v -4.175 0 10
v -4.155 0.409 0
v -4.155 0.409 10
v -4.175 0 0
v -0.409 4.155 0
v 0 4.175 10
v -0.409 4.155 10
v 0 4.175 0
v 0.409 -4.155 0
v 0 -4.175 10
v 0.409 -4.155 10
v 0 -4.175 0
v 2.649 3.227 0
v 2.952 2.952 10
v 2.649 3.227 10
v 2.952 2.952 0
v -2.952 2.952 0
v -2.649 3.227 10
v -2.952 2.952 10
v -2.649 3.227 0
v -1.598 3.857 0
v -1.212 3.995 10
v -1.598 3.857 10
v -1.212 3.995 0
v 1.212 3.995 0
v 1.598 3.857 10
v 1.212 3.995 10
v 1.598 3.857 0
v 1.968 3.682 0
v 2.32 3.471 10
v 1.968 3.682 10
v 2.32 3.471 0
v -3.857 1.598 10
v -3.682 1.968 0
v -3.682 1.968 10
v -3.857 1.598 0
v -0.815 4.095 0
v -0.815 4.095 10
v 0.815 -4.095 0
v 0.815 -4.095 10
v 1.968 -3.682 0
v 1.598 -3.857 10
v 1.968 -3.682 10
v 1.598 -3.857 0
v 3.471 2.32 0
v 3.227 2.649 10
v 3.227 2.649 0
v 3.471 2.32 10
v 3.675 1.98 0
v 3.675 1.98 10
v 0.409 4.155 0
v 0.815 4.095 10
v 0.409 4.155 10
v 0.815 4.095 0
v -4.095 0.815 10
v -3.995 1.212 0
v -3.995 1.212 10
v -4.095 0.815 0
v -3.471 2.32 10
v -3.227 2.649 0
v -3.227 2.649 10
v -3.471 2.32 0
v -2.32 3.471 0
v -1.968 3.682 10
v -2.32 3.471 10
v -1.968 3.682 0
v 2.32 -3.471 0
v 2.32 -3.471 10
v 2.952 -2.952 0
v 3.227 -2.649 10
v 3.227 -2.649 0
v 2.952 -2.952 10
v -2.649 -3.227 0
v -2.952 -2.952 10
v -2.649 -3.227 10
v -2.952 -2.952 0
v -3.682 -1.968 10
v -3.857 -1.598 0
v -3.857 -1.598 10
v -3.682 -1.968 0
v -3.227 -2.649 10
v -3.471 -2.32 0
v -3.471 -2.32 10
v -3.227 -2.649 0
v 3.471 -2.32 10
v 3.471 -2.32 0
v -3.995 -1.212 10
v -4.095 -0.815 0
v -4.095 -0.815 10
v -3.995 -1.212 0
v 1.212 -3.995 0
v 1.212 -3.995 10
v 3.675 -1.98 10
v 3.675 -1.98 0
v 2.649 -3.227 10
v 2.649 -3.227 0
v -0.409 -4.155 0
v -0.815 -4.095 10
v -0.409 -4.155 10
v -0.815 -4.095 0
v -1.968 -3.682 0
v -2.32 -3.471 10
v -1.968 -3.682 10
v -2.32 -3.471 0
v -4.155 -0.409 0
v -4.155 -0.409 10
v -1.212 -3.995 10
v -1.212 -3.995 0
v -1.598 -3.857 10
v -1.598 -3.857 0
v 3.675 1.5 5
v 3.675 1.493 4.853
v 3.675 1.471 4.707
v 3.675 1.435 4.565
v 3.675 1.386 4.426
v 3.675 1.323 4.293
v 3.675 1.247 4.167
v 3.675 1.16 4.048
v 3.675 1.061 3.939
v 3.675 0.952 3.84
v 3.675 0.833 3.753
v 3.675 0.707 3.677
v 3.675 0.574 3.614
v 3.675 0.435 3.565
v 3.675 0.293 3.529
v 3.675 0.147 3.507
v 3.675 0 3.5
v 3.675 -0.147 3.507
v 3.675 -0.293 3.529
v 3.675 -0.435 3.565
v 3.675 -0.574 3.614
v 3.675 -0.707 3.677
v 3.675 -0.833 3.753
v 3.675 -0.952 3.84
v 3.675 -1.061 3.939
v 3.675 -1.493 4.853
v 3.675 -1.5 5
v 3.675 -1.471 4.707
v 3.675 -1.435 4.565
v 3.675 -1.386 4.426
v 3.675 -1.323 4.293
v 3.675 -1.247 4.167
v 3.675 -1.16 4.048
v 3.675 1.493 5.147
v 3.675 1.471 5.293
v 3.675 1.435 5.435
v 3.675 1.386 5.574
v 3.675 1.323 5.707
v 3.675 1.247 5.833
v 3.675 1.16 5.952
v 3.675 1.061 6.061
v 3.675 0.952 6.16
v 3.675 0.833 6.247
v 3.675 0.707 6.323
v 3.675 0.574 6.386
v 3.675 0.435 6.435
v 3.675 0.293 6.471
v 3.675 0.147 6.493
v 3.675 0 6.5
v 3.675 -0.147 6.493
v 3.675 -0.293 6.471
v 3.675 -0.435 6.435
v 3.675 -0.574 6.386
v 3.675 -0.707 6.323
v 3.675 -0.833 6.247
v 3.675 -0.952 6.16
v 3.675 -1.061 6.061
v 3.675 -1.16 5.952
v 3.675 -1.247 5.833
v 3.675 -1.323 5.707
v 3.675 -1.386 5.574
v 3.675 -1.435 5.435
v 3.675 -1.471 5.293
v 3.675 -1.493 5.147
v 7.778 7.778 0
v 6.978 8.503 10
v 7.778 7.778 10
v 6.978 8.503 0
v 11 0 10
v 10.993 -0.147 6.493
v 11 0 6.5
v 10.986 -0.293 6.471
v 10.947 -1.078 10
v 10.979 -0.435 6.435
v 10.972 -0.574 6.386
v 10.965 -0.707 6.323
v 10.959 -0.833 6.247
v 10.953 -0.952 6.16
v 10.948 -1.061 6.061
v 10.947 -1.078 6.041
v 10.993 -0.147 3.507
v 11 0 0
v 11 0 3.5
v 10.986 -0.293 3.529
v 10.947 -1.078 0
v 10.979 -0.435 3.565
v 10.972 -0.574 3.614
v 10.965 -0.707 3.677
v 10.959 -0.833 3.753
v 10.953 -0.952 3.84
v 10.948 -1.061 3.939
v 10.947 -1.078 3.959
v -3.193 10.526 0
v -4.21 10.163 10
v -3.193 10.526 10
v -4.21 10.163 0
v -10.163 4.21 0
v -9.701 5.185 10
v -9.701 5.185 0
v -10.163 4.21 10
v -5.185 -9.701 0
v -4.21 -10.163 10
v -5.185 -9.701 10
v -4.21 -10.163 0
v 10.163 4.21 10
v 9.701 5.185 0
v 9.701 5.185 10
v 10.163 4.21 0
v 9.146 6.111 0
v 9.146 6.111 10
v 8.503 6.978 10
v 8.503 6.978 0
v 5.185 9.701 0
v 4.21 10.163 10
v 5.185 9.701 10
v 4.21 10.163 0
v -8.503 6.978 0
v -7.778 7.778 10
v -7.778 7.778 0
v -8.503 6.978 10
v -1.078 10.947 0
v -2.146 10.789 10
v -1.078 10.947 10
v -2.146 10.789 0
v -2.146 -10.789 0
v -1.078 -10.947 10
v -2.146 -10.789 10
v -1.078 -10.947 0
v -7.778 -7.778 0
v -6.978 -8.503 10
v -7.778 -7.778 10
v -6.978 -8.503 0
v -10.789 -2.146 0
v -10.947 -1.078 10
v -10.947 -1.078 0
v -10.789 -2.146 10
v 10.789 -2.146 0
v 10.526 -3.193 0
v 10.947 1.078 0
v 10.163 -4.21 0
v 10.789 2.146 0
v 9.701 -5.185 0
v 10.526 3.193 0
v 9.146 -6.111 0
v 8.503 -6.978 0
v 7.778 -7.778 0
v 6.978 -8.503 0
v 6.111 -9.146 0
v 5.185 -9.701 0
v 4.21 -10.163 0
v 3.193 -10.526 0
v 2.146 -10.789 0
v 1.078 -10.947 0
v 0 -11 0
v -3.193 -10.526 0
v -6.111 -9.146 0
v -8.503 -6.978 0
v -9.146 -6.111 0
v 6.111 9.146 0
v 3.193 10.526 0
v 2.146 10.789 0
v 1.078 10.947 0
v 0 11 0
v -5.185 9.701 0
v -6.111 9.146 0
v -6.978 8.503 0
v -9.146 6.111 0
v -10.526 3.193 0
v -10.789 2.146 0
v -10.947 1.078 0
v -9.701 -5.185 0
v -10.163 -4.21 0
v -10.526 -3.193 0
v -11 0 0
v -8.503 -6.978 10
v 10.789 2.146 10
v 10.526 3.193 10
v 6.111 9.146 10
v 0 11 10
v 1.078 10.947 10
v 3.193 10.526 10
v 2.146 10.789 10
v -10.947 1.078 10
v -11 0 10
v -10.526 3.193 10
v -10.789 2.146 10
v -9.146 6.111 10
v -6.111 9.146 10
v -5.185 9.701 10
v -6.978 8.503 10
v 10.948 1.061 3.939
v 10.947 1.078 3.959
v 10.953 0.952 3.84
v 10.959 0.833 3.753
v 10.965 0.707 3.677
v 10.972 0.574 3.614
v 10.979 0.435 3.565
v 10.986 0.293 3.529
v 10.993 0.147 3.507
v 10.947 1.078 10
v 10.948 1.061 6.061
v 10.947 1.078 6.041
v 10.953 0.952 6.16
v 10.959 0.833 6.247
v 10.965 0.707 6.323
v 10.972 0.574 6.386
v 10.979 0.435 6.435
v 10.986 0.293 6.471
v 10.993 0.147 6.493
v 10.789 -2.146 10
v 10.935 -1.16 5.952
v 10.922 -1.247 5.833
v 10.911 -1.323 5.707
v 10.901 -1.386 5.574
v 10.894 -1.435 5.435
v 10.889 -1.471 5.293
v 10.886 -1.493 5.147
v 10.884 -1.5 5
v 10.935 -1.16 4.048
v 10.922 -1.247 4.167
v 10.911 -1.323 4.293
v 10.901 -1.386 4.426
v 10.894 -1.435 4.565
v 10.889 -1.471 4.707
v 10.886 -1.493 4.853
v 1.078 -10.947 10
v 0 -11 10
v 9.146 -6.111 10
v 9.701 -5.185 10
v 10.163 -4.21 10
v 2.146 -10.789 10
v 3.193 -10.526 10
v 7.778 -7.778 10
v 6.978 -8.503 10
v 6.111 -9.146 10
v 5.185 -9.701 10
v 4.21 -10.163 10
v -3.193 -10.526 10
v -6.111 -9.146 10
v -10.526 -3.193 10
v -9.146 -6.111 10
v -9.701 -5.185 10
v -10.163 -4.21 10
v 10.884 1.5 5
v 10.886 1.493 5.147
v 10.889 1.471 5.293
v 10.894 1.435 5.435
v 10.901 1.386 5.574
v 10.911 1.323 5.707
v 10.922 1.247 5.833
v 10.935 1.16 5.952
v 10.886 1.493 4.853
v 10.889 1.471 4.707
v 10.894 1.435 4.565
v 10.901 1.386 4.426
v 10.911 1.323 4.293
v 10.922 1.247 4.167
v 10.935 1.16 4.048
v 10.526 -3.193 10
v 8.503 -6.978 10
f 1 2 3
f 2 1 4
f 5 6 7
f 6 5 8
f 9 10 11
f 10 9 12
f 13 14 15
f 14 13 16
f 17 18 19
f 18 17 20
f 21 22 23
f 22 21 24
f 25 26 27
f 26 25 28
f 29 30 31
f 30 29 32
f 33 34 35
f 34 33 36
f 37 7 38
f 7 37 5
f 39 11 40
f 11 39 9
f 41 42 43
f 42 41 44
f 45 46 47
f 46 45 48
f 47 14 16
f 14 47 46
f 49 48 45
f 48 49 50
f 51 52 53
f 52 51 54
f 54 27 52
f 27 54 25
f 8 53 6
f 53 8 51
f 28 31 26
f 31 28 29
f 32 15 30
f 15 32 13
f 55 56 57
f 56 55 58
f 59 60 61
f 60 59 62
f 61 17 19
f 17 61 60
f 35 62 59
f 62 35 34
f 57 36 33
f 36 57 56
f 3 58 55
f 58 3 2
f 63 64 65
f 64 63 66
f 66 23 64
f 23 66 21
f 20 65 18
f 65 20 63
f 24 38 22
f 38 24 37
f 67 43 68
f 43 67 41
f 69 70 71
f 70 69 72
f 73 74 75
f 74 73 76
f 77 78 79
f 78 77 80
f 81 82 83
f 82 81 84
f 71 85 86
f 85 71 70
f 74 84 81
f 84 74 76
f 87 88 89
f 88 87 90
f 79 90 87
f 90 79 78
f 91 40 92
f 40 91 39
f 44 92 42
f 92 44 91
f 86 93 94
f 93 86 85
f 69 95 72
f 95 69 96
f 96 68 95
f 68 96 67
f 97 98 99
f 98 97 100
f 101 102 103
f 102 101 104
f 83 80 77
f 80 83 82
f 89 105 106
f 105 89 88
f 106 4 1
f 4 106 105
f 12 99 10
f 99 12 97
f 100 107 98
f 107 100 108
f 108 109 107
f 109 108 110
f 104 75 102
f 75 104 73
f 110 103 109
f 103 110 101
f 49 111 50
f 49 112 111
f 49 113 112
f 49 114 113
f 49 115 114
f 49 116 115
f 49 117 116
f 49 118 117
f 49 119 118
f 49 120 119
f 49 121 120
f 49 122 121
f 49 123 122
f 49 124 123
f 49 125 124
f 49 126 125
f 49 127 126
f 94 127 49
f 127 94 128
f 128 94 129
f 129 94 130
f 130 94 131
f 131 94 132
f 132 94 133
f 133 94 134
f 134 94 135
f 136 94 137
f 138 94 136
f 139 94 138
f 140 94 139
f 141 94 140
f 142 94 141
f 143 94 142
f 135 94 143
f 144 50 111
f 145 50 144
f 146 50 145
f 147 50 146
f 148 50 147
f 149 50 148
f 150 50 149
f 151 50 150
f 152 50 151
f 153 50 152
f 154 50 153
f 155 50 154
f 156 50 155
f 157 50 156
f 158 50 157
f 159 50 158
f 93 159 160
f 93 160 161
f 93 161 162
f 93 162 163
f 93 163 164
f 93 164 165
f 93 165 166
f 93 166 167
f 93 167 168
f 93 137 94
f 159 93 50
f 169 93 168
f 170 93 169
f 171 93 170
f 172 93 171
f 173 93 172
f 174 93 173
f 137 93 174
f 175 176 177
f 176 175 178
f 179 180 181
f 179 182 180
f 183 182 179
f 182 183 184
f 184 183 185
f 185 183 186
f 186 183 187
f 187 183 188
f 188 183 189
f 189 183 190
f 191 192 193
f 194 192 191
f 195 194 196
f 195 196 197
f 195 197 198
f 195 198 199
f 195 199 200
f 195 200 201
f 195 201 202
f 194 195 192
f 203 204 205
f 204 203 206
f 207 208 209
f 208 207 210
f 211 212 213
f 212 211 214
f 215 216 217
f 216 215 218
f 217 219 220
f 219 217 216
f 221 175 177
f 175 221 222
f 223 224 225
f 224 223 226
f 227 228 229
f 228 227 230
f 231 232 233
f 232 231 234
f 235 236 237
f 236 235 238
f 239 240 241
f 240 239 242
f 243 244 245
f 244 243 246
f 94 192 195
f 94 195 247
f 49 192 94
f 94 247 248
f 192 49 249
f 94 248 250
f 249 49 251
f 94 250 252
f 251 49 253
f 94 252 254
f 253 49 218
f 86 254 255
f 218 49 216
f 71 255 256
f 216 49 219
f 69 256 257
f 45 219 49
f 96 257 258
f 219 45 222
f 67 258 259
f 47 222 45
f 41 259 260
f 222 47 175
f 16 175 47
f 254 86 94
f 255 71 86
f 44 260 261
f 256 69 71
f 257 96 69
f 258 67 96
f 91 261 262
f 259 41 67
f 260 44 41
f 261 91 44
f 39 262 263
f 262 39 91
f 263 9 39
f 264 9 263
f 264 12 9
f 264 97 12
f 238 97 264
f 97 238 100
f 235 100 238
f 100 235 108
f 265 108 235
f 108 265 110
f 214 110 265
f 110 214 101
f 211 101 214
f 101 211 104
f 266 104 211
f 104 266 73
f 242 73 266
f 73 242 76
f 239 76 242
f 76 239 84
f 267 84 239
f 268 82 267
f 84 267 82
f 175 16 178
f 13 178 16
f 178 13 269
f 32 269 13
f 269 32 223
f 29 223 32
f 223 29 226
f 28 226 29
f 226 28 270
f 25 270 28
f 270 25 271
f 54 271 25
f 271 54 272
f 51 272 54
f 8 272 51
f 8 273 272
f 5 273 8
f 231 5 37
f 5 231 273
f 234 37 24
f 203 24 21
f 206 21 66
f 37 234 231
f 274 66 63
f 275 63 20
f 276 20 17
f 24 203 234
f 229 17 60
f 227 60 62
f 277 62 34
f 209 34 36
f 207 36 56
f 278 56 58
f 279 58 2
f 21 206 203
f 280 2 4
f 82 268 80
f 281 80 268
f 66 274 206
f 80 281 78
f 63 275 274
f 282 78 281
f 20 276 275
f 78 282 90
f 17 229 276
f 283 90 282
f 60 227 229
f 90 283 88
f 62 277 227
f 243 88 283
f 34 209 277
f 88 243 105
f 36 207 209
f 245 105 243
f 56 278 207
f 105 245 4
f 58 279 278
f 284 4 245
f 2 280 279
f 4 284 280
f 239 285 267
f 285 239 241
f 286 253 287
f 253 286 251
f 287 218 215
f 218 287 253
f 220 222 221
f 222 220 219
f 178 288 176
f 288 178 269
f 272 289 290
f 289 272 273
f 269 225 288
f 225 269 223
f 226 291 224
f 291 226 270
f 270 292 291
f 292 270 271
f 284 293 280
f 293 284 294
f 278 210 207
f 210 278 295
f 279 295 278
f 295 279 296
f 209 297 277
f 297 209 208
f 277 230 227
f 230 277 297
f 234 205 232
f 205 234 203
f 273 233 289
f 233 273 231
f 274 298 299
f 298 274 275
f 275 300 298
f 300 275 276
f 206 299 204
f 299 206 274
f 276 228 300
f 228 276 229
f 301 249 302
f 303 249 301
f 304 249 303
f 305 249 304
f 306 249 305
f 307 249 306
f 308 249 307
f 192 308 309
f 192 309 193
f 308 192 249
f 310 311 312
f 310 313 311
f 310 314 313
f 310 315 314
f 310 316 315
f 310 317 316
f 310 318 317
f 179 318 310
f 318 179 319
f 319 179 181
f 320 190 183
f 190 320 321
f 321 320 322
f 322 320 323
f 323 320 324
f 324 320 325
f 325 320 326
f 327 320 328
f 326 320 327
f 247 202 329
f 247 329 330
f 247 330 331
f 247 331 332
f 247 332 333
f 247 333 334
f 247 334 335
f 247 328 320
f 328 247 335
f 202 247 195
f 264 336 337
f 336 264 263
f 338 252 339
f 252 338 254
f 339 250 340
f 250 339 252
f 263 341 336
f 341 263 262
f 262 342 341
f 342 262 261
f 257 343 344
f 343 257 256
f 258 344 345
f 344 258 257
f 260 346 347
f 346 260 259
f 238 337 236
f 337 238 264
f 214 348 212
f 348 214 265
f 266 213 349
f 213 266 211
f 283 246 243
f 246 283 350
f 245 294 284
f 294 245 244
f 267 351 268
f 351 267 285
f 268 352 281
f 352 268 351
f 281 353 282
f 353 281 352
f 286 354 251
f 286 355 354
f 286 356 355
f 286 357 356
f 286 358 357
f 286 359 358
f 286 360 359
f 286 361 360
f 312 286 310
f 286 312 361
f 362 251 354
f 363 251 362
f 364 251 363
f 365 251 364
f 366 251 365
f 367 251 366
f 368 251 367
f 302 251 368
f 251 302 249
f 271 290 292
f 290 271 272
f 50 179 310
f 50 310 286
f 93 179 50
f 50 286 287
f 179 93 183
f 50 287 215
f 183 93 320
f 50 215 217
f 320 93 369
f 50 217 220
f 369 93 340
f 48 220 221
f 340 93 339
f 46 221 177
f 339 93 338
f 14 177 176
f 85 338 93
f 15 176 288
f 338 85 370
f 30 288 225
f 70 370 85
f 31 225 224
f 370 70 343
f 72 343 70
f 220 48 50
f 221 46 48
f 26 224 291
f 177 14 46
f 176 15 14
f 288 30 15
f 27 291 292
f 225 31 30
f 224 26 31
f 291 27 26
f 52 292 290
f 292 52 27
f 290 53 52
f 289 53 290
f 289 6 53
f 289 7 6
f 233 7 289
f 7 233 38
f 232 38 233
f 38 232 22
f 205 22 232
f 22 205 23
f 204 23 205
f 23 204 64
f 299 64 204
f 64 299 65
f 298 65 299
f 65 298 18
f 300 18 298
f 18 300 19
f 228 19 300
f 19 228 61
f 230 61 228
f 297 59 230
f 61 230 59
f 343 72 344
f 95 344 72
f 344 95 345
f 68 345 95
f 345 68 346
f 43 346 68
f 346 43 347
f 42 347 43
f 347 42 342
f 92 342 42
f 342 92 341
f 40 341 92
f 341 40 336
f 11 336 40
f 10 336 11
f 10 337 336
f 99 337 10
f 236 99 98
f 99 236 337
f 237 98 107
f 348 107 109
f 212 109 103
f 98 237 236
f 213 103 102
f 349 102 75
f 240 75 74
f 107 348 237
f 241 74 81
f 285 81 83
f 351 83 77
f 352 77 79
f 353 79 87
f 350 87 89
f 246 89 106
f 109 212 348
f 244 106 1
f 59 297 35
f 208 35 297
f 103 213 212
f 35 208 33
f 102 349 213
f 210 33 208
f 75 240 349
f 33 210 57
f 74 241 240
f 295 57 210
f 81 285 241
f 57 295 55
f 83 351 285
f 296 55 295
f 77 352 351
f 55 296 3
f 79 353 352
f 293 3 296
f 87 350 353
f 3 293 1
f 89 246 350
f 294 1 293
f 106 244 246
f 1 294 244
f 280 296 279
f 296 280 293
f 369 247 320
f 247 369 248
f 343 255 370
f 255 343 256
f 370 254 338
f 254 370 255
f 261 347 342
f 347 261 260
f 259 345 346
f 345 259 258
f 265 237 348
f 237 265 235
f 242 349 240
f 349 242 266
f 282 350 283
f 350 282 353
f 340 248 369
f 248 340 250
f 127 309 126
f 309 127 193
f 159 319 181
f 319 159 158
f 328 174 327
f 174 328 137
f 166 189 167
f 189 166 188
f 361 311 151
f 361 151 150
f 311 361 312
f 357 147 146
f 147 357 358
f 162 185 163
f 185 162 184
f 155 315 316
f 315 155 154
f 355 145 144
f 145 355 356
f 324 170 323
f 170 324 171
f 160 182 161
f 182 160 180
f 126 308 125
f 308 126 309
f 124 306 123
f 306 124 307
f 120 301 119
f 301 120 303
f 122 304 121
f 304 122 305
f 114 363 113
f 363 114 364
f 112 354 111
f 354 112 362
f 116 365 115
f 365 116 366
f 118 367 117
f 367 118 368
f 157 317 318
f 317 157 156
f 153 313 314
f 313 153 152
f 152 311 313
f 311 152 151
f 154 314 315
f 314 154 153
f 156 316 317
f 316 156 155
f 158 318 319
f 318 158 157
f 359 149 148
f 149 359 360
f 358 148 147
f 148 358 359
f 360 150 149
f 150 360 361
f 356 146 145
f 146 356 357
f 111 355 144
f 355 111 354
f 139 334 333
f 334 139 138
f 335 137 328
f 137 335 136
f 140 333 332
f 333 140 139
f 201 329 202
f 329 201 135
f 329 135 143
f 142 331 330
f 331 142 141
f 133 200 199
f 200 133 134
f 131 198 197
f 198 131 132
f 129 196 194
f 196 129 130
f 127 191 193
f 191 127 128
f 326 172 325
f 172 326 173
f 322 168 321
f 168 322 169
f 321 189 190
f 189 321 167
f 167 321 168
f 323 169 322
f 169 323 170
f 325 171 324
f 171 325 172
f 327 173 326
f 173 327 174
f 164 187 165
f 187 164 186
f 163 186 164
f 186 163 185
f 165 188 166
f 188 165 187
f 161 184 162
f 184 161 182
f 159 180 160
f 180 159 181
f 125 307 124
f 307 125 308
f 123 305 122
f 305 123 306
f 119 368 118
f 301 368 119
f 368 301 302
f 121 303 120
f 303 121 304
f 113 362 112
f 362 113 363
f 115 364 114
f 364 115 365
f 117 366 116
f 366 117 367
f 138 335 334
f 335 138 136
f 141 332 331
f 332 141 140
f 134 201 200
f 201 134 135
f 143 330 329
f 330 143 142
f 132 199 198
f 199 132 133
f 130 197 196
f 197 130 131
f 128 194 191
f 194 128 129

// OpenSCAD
// file: parameters.scad
// =============================================================================
// Gen-CB — nightly 2026-10-13 (physics_scorer, honest magpylib watts)
// Wire-saver stator for the Gen-CA rotors: only 4.05 mm of copper (9 layers), so the magnet faces are 6.65 mm apart and peak Bz at the copper reaches ≈0.70 T. It needs ≈300 m of wire (≈80 m less than Gen-CA, ≈75 m less than Gen-BX) and still out-scores the Gen-BX champion; it shares every rotor part, the steel, the frame rods and the bearing bridges with Gen-CA, so the two stators swap on the same machine.
// Clocking 0 deg (magnets N facing S) + D-flat keyed bore + index notch + flip-symmetric hole map.
// Windable 2-piece bobbin; turns = physics_scorer turns_fit; copper only between flanges.
// Steel back-iron: 2× Ø194 × 4.76 mm (3/16") mild-steel discs (steel_backiron_disc.dxf); magnets sit ON the steel
// (through-pockets) -> score with --back-iron. Night 2026-10-13.
// =============================================================================
topology            = "dual_rotor";

// --- Wire / winding (physics_scorer winding-fit) -------------------------------
wire_awg            = 26;
wire_od             = 0.45;     // insulated OD mm (bare 0.405)
fill_realistic      = 0.65;     // insulated-wire area / window (DENSE layered wind with a jig; scorer cap 0.65)
turns               = 292;       // = physics_scorer turns_fit (do NOT raise)
coil_former_type    = "bobbin";
coil_core_inset     = 17.70;     // radial copper build: hub = copper boundary inset by this
wind_build_axial    = 0.0;      // nothing proud of the flanges
wind_build_radial   = 0.0;

// --- Bobbin (base + lid) ---------------------------------------------------------
coil_id_r           = 63.00;    // copper boundary sector
coil_od_r           = 102.00;
span_deg            = 26.82;    // = pitch - 2*asin((wall+0.85)/coil_id_r) -> >=1.2 mm stator web
former_web          = 4.05;     // copper height between flanges (TALL copper: steel keeps Bz up)
flange_t            = 0.80;     // >= 0.8 mm FDM wall rule (tall winds push on the flanges)
wall                = 0.80;     // flange lip beyond copper
former_bare_h       = former_web + 2 * flange_t;
coil_envelope_h     = former_bare_h + 2 * wind_build_axial;
tab_w               = 7.0;
tab_len             = 7.0;
tab_h               = former_bare_h / 2;
pin_d               = 1.9;      // 1.75 mm filament locating pin
coil_mount_r        = coil_od_r + 0.2 + 4.0;
lead_y              = 1.6;
lead_slot_w         = 0.9;
lead_groove_d       = 0.6;

// --- Gap -------------------------------------------------------------------------
run_clear           = 0.50;     // rotor face -> flange
gap_spacer_h        = run_clear + wind_build_axial;
m2m                 = coil_envelope_h + 2 * run_clear;   // rotor face to rotor face (= gap_sleeve length)

// --- Stator ----------------------------------------------------------------------
coil_stations       = 12;
bay_clear           = 0.35;     // 0.35 mm: bobbin BASES print IN PLACE inside the stator bays (print-in-place gap), then pop out
stator_thick        = former_bare_h;                        // bobbins flush both faces
stator_od           = 225.0;
shaft_clear_stator  = 14.0;     // stator is static; gap sleeve OD 12 spins inside
stator_ir           = 57.85;    // ANNULAR stator: open centre (nested one-plate pack); inner rim 4.0 mm

// --- Rotor(s) --------------------------------------------------------------------
magnet_Br           = 1.43;     // N52
magnet_d_large      = 20.0;
magnet_h_large      = 5.0;      // one O20x5 per pocket
magnet_h_small      = 5.0;      // unused: no O5 pockets in this kit
halbach_magnetisation = "none";  // NO O5 assist magnets in this kit (scan: they lower the 4-pole score)
rotor_b_same_axis   = true;     // same-index magnets share one axis: N faces S across the gap
large_pocket_d      = 20.3;
small_pocket_d      = 5.3;
pocket_h            = 5.00;     // THROUGH the carrier: magnet back face sits on the steel disc (FLUSH seat: carrier = magnet height, magnet face level with the rotor face)
large_n             = 8;
R_large             = 84.0;
small_r_list        = [];       // no O5 pockets
carrier_od          = 194.0;
ring_ir             = 70.85;    // RING rotor: PLA magnet ring r ring_ir..carrier_od/2 (steel disc = structural rotor)
hub_flange_od       = 74.0;     // separate rotor_hub flange (inside the ring, flush with the ring face)
csk_d               = 6.6;      // M3 countersunk head pocket (ISO 10642 head 6.0 nominal) on the stator face
csk_depth           = 1.55;     // = (csk_d - m3_clear) / 2: 90 deg cone; head sits 0.3 mm below the face
n_seg               = 8;        // magnet-carrier ARCS per rotor (segmented carrier)
seg_deg             = 360 / n_seg;
seg_start           = -22.5;   // arc edge angle (between pocket 0 and its clamp bolt)
seg_kerf_deg        = 0.4;      // gap between neighbouring arcs on the steel
carrier_thick       = pocket_h;
hub_h               = 12.0;     // > steel_t + insert: radial set-screw clears the steel
hub_od              = 24.0;     // slim hub so the M4 brace rods fit at R~18 inside the coil ring
hub_insert_d        = 4.0;      // M3 heat-set insert, radial, bears on the D-flat
rotor_b_offset_deg  = 0.0;      // CLOCKING: magnets directly opposite
shaft_key           = "dflat";
dflat_depth         = 0.5;      // 8 mm shaft with 0.5 mm flat (7.5 across flat)
index_notch_d       = 3.0;

// --- Steel back-iron (buyable laser-cut) -------------------------------------------
steel_t             = 4.76;      // mild steel thickness (image method ignores it; sized from steel_flux.py so the return path stays well below saturation)
steel_center_hole   = 26.0;     // slips over the rotor hub (OD 24)
steel_od            = carrier_od;   // steel disc OD = rotor carrier OD

// --- Modular MAX interface ----------------------------------------------------------
shaft_bore          = 8.35;
dflat_x             = 4.0 - dflat_depth + (shaft_bore - 8.0) / 2;
bearing_d           = 21.85;
bearing_h           = 7.2;
m3_clear            = 3.5;
bolt_r_inner        = 30.0;     // M3 steel-disc clamp bolts (inside the magnet ring)
bolt_n_inner        = 4;
bolt_inner_angles   = [0, 90, 180, 270];
bolt_r_outer        = 84.0;     // second M3 steel-disc clamp ring
bolt_outer_angles   = [22.5, 67.5, 112.5, 157.5, 202.5, 247.5, 292.5, 337.5];
flange_bolt_r       = 107.5;     // frame rods: OUTSIDE the rotor OD (rotors spin inside them)
flange_bolt_n       = 4;
flange_bolt_offset  = 45.00;    // between coil stations -> never cuts a lead groove/tab
brace_r             = 18.0;
brace_d             = 4.3;      // temporary M4 jack rods (assembly only)
brace_n             = 4;
brace_angles        = [45, 135, 225, 315];          // flip-symmetric

spacer_pad_od       = 14.0;
spacer_pad_id       = m3_clear;
endbell_od          = 225.0;
endbell_thick       = 8.0;
endbell_shaft_clear = 10.0;
collar_h            = 10.0;
standoff_od         = 9.0;
frame_standoff_h    = run_clear + carrier_thick + hub_h + collar_h + 2.0;
sleeve_od           = 12.0;
plate_max_mm        = 410;

$fn = 64;
// main file
// Gen-CB — shaft collar with D-flat bore (set screw bears on the flat); print x4
include <parameters.scad>;
$fn = 64;
// D-flat keyed bore: flat faces +X (angle 0 = magnet pocket 0 = index notch)
module dflat_bore(h) {
    intersection() {
        cylinder(d=shaft_bore, h=h);
        translate([-shaft_bore, -shaft_bore, 0]) cube([shaft_bore + dflat_x, 2*shaft_bore, h]);
    }
}

od = 22; h = collar_h; set_d = 3.0;
difference() {
    cylinder(d=od, h=h);
    translate([0, 0, -0.1]) dflat_bore(h + 0.2);
    translate([0, 0, h/2]) rotate([0, 90, 0]) cylinder(d=set_d, h=od);
}
